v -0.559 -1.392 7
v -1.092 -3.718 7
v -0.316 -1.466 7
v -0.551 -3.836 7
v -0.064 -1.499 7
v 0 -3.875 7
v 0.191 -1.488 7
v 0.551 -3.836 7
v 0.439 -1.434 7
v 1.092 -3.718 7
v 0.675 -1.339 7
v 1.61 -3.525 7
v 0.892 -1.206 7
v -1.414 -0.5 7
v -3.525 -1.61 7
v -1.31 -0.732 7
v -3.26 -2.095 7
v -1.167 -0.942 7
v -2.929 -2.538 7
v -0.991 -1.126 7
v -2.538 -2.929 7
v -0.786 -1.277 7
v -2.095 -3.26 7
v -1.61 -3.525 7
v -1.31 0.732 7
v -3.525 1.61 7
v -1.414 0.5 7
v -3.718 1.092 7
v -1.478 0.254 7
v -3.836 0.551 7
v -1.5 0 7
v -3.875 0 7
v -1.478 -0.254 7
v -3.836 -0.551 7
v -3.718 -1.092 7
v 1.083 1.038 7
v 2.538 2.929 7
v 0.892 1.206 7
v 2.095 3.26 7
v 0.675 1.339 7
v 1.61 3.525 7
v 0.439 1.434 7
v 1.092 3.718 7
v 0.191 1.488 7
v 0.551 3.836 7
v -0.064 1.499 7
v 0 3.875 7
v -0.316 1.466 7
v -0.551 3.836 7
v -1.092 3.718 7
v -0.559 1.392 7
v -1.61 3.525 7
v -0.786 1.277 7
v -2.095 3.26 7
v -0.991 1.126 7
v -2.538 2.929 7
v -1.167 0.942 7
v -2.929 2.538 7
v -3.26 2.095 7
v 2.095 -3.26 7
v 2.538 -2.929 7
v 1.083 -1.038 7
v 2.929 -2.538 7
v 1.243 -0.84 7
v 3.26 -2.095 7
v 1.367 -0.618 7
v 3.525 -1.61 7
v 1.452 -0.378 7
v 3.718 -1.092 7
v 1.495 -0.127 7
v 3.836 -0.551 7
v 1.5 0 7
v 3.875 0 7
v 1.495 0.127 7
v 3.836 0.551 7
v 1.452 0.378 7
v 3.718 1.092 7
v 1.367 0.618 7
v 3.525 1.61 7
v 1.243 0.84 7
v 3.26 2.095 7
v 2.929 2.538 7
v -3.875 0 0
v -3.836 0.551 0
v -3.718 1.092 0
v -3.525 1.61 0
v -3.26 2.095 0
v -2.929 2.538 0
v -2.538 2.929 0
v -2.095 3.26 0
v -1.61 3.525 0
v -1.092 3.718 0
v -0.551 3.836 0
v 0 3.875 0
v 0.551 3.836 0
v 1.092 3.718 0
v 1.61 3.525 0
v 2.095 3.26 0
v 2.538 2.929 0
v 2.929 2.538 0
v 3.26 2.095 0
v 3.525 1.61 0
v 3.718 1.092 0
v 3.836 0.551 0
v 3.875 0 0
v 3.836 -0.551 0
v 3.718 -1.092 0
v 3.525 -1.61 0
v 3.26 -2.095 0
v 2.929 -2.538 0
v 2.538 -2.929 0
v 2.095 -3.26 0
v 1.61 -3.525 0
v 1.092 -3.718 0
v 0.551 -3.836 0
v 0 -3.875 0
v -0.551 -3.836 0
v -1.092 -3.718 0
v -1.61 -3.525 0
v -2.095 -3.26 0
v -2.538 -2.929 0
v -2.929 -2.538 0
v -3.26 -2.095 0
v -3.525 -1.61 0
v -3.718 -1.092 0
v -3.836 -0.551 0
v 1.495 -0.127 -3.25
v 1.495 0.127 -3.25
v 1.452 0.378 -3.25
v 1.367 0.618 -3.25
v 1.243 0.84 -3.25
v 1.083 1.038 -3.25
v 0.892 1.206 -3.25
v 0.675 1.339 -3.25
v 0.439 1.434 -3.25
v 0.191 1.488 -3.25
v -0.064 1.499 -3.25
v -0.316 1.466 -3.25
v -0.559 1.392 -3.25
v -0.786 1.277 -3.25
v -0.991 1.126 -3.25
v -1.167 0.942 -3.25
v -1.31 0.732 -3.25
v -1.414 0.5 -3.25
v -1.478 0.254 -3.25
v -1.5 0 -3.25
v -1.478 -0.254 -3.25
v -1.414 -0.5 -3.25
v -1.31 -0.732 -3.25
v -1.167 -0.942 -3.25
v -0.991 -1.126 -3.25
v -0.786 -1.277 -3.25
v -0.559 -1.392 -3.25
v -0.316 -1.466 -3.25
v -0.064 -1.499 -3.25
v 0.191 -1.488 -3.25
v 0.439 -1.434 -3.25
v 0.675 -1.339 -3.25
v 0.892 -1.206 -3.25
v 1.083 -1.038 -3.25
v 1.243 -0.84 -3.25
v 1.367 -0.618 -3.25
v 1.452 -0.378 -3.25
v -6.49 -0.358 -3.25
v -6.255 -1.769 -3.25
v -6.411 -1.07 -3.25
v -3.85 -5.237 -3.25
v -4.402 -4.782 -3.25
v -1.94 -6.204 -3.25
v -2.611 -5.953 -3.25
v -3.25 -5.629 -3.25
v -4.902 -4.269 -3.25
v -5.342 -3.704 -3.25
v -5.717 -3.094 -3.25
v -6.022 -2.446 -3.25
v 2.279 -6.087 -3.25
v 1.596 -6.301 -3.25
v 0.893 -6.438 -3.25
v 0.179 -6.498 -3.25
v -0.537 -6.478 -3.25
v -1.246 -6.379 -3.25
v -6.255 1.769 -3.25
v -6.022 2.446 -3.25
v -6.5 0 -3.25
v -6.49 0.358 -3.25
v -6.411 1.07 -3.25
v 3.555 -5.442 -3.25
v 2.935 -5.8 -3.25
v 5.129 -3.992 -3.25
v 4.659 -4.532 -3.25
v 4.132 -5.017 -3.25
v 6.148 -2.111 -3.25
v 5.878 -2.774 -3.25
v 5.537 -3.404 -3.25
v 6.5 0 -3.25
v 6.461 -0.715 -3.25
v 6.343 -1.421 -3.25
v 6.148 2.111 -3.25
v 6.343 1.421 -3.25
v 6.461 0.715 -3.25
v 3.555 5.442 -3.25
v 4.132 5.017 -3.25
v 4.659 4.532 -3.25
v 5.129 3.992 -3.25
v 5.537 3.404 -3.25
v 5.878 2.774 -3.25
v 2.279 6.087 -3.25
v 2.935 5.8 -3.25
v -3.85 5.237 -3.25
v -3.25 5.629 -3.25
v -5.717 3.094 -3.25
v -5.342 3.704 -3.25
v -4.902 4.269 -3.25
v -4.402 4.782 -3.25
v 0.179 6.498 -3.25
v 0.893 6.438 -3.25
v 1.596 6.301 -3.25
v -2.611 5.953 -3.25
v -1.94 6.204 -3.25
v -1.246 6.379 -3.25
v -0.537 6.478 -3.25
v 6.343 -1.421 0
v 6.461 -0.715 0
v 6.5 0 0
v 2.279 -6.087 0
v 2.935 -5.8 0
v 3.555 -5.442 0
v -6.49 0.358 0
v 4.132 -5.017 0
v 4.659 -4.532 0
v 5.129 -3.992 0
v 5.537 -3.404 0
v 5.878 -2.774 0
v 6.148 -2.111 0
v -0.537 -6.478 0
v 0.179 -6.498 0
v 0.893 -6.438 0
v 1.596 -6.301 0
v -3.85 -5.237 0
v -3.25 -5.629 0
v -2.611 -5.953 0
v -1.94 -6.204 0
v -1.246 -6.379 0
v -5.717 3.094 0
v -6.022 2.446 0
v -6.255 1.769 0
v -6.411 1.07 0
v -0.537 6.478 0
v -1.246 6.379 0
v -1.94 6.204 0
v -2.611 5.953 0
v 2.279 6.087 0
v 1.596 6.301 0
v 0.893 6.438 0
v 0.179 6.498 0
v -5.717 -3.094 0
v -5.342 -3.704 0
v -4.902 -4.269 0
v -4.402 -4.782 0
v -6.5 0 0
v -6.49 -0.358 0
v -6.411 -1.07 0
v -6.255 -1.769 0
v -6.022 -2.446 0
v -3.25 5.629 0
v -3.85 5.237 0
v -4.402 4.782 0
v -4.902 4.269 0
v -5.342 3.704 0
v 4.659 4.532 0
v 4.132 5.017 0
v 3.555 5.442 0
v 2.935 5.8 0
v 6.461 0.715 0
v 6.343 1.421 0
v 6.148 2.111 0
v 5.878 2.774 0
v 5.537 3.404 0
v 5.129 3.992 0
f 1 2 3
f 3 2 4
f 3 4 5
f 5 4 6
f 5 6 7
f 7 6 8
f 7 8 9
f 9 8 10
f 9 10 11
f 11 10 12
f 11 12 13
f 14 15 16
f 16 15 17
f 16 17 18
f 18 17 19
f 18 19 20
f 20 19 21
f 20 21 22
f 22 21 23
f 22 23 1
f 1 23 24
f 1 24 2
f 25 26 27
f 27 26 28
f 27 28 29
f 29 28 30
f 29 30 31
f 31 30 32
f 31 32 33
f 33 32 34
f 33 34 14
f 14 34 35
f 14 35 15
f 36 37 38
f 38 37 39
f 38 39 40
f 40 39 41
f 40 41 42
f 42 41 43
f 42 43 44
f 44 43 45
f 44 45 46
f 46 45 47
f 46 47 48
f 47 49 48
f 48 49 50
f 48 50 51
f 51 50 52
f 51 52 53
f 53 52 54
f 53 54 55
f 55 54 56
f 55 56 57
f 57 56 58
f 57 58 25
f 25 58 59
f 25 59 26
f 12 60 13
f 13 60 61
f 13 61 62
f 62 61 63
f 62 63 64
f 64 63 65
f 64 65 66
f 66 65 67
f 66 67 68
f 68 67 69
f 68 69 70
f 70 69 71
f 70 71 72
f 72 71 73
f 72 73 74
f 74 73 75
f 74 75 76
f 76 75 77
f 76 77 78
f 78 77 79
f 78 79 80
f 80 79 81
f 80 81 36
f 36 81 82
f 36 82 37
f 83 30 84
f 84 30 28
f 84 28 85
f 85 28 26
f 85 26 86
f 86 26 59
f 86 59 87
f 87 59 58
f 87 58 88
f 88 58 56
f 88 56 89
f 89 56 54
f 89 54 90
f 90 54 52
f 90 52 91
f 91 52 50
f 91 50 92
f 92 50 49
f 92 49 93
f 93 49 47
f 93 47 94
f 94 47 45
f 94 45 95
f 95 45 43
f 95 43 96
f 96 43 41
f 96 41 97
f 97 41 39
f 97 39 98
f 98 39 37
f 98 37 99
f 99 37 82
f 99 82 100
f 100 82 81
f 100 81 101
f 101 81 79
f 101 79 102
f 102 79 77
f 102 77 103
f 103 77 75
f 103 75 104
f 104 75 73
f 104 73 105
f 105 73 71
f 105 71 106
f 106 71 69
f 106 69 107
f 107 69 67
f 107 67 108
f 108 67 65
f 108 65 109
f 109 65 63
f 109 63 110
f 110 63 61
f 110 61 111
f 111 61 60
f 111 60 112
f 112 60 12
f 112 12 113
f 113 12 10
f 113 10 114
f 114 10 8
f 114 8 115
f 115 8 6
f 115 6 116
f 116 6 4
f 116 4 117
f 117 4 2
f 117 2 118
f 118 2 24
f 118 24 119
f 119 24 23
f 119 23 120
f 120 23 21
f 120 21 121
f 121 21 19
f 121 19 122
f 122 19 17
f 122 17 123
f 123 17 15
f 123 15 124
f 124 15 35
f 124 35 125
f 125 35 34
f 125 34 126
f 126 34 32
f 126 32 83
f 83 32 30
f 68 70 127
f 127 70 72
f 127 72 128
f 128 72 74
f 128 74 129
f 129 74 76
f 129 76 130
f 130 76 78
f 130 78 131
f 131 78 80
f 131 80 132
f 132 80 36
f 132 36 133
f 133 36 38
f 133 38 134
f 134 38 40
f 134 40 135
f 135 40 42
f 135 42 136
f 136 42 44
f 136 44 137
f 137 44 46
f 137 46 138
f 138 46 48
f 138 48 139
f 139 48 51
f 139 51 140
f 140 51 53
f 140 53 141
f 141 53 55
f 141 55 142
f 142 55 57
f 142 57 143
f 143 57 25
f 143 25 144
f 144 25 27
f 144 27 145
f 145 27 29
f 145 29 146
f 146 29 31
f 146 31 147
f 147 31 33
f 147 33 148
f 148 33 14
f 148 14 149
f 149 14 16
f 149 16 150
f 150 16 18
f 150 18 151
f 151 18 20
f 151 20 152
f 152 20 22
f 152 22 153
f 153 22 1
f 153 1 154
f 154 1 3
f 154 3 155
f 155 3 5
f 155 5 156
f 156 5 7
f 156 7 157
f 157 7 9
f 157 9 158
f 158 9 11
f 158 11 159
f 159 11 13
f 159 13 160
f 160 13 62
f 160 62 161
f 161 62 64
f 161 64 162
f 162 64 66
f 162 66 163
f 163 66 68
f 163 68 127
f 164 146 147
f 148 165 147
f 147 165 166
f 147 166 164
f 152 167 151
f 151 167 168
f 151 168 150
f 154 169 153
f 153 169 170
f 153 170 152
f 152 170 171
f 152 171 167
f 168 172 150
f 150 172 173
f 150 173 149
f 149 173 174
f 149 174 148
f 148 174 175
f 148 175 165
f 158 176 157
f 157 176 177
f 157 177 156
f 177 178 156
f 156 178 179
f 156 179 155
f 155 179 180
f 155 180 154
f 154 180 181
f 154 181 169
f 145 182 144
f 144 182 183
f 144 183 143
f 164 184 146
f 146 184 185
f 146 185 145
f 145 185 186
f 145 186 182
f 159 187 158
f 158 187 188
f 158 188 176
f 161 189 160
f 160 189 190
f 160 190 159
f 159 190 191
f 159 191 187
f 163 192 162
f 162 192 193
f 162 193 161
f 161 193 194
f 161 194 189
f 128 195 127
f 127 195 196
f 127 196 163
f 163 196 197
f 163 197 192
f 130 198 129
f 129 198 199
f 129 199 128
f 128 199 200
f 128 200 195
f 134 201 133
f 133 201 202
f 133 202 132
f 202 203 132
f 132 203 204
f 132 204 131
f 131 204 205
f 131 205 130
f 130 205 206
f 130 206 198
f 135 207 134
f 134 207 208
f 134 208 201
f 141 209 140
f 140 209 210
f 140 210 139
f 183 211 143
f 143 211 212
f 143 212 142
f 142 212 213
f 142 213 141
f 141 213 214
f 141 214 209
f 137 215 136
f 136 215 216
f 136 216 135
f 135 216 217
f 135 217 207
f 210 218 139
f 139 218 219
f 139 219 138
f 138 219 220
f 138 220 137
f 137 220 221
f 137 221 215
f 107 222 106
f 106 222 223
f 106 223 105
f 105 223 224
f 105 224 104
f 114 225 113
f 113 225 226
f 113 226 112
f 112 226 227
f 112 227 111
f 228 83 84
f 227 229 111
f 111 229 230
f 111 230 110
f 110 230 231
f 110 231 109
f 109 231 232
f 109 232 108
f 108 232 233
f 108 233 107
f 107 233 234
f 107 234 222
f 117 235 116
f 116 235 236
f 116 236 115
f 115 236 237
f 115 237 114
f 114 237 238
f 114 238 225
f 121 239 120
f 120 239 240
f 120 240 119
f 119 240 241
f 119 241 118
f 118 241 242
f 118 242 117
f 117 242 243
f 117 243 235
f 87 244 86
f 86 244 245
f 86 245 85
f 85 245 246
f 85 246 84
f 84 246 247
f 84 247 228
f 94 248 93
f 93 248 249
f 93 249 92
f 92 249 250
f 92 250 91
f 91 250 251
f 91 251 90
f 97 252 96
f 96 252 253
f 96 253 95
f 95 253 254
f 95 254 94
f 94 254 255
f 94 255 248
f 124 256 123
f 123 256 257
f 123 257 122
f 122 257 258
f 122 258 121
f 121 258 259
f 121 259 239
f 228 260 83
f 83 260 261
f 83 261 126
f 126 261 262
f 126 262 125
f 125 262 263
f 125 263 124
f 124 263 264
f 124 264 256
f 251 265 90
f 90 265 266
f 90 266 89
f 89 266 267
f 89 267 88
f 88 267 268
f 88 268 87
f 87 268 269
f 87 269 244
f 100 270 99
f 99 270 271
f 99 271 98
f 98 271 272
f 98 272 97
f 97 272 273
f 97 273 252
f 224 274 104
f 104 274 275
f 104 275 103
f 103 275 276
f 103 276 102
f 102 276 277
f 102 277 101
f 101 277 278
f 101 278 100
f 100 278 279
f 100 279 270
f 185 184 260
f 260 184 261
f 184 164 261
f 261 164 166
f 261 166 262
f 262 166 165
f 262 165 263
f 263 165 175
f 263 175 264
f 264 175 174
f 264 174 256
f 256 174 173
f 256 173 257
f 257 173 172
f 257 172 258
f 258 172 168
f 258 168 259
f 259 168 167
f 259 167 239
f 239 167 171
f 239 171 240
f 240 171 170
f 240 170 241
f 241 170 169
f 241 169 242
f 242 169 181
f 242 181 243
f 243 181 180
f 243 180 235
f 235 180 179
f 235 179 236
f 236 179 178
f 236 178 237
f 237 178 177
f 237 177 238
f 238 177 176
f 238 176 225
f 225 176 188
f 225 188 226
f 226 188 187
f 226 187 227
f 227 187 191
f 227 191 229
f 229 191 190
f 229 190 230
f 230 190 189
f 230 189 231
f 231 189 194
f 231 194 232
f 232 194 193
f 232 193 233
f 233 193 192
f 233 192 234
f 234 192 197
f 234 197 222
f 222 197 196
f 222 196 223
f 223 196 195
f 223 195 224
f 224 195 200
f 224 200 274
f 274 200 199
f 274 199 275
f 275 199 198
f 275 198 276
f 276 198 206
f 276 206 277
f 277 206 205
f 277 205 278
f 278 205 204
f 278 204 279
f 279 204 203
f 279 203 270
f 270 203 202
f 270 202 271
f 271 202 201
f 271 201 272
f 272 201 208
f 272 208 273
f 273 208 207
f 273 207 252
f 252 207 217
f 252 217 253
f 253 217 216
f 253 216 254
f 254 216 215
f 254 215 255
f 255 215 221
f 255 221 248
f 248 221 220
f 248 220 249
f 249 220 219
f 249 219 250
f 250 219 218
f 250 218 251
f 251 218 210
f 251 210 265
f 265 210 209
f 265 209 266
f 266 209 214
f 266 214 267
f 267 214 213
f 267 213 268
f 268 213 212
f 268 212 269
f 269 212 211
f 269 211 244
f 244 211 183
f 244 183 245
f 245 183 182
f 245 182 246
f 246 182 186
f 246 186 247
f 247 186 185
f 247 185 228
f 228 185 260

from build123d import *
from build123d.topology import SkipClean

# Parameters (mm, degrees)
SKETCH1_R           = 3.875
SKETCH1_R_2         = 1.5
BOSS_EXTRUDE1_DEPTH = 7
BOSS_EXTRUDE2_START = 3.25
SKETCH2_R           = 6.5
SKETCH2_R_2         = 1.5
BOSS_EXTRUDE2_DEPTH = 3.25


with BuildPart() as part:
    # Sketch1 → Boss-Extrude1 (new body)
    with BuildSketch(Plane.XY):
        Circle(SKETCH1_R)
        Circle(SKETCH1_R_2, mode=Mode.SUBTRACT)
    extrude(amount=BOSS_EXTRUDE1_DEPTH)

    # Sketch2 → Boss-Extrude2 (add)
    with SkipClean():  # the faces are left unmerged after this step: merging them gives an invalid solid
        with BuildSketch(Plane(origin=(0, 0, 0), x_dir=(-1, 0, 0), z_dir=(0, 0, -1)).offset(BOSS_EXTRUDE2_START)):
            with Locations(Location((0, 0, 0), (0, 0, 180))):
                Circle(SKETCH2_R)
            Circle(SKETCH2_R_2, mode=Mode.SUBTRACT)
        extrude(amount=-BOSS_EXTRUDE2_DEPTH)


solid = part.part
